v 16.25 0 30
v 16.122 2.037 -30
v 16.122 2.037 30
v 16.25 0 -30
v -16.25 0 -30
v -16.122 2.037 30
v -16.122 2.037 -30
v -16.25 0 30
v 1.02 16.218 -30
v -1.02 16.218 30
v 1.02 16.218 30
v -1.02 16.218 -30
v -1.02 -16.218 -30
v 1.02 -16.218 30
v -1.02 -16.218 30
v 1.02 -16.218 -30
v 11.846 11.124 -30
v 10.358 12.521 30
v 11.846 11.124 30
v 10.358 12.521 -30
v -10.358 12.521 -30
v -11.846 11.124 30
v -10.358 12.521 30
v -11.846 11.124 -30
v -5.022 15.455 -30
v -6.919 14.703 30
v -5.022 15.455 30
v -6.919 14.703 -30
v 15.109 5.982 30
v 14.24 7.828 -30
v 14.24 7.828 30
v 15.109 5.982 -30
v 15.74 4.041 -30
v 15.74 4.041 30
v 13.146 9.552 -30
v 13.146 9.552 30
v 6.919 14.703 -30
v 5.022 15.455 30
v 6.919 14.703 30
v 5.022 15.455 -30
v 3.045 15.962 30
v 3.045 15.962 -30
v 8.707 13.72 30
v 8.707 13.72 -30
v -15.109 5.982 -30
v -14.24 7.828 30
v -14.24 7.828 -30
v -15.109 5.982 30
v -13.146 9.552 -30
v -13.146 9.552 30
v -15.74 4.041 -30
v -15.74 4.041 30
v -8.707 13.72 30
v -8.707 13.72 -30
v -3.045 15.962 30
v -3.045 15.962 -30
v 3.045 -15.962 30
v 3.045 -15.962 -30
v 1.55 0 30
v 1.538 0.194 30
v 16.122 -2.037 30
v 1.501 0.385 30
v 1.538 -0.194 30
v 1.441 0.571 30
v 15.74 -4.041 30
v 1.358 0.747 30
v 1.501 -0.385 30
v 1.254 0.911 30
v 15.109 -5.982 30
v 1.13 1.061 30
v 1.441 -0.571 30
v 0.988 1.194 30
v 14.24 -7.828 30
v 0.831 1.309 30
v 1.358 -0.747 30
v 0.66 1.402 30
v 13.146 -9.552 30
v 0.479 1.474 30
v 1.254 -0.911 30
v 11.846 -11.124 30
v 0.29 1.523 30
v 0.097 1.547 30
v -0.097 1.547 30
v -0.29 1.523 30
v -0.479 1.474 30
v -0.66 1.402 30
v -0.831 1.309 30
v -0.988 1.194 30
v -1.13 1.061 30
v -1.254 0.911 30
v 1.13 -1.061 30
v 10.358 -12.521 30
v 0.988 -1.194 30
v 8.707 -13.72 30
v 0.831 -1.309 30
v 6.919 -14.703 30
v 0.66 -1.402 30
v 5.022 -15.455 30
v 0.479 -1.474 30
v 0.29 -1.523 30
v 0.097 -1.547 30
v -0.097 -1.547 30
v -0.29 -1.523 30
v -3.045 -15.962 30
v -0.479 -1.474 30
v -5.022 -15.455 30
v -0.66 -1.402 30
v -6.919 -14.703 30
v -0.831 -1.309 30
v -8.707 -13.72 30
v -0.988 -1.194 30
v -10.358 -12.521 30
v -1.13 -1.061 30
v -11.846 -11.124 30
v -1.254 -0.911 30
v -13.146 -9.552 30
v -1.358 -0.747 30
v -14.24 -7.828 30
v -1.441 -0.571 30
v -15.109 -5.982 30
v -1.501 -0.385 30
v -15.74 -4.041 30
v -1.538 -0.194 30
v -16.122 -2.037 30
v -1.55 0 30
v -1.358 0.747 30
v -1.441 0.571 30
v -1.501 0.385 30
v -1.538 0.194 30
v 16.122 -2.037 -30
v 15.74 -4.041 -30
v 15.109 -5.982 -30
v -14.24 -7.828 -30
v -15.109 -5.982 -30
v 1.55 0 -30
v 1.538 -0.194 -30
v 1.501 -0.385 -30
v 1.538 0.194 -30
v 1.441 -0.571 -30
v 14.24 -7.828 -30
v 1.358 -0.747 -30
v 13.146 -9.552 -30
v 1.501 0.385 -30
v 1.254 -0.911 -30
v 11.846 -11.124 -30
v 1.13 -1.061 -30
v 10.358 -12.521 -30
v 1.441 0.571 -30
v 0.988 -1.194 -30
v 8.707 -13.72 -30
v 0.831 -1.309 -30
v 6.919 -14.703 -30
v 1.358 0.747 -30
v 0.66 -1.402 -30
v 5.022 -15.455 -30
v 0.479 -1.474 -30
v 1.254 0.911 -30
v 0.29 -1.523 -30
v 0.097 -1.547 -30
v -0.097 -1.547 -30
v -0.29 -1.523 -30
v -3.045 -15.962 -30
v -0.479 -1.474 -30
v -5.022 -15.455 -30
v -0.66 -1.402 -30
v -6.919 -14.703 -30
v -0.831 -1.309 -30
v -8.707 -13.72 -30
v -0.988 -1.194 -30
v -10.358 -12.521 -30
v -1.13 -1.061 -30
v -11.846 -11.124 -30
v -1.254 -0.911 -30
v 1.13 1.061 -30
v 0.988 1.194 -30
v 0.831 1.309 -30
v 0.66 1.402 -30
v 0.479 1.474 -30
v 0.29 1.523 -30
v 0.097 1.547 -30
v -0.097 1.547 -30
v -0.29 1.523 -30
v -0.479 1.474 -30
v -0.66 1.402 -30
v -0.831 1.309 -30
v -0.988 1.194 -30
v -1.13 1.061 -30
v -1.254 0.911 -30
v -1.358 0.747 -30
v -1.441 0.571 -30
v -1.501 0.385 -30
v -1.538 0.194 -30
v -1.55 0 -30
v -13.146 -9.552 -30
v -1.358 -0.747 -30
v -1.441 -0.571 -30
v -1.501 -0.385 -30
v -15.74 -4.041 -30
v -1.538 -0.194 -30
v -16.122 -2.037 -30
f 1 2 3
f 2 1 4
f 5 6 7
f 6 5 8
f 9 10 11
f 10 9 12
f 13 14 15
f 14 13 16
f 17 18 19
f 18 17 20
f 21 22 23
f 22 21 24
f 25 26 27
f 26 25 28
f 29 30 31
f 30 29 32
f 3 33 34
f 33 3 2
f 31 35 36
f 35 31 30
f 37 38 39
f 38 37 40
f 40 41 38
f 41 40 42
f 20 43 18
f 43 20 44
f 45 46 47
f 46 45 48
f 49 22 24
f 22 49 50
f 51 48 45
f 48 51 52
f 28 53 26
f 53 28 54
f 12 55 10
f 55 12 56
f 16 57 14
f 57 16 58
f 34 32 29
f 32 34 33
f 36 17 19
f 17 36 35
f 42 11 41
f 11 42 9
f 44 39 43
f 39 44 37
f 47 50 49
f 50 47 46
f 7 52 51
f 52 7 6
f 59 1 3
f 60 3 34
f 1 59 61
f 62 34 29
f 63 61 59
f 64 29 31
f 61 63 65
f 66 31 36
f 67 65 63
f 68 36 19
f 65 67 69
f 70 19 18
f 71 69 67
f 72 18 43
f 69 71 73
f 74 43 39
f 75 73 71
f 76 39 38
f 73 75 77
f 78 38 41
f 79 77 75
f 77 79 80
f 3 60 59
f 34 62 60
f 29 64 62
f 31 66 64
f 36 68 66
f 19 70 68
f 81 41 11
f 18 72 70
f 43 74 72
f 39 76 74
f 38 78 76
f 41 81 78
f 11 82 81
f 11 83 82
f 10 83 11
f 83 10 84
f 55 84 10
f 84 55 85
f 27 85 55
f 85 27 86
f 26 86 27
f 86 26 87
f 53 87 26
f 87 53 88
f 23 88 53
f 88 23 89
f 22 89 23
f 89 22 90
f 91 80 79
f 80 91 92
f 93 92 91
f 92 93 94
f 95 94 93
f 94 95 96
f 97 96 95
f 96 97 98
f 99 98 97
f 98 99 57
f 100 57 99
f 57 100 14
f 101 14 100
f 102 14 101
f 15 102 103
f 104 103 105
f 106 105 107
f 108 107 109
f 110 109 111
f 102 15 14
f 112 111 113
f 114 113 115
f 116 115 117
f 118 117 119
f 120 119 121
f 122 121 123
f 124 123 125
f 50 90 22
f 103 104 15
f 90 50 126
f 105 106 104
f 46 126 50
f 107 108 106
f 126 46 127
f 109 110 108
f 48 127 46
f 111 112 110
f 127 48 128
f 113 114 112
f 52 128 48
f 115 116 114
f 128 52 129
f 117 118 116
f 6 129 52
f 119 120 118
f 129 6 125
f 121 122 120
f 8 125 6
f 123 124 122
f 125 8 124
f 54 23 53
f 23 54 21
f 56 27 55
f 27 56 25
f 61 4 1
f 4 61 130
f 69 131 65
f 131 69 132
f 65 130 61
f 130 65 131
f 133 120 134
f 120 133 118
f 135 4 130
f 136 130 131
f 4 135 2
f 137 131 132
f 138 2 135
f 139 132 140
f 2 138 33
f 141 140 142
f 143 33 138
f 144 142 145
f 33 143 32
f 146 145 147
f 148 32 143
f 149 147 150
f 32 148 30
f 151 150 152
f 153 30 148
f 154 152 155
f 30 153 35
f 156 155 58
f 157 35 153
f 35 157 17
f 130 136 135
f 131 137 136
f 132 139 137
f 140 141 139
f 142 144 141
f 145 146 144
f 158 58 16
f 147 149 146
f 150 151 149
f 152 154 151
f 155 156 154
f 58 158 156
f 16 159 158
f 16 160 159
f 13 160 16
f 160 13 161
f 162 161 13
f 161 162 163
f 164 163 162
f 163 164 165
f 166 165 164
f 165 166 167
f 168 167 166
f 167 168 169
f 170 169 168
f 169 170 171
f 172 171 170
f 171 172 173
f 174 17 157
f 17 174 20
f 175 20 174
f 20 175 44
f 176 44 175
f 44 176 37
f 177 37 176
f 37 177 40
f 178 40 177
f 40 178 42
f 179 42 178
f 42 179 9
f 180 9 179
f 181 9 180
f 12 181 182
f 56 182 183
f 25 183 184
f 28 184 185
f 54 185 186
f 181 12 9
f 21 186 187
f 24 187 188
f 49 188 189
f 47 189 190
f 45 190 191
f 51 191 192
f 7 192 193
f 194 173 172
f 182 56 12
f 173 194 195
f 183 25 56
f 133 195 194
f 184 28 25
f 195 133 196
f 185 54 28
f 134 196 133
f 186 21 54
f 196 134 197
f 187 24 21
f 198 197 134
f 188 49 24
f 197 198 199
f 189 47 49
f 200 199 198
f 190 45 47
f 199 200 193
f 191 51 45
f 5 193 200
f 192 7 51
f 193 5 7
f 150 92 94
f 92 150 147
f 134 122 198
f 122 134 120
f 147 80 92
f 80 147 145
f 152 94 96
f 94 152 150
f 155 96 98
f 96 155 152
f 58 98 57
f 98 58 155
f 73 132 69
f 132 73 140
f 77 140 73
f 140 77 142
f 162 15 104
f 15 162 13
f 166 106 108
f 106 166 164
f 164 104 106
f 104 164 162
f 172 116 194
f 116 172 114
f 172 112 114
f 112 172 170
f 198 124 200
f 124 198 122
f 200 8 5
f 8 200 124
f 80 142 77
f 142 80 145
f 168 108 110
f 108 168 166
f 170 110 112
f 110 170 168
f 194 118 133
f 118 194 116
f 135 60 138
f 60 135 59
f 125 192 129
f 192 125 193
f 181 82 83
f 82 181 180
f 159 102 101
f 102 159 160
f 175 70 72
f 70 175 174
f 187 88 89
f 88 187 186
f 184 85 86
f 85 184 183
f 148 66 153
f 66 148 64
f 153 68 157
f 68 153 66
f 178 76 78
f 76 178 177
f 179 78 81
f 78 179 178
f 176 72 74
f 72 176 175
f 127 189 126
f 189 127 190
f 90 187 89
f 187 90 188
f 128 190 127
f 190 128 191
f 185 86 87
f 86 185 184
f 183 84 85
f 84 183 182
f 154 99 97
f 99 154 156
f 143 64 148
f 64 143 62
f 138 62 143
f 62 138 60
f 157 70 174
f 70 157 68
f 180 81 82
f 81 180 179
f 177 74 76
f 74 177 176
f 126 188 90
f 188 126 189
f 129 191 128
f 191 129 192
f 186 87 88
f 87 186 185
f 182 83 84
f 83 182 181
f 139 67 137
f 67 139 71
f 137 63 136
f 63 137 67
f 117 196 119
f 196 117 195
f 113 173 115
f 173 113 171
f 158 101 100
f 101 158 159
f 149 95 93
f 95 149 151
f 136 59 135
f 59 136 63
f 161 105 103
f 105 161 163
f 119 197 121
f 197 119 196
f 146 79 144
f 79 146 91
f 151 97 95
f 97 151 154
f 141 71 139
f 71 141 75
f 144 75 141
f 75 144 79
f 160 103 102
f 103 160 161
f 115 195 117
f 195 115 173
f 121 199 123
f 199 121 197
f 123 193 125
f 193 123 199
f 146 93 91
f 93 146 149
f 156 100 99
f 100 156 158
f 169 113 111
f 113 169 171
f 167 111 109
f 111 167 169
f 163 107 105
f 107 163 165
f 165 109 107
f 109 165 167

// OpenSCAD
$fn = 50;


difference() {
	union() {
		translate(v = [0, 0, -30.0000000000]) {
			cylinder(h = 60, r = 16.2500000000);
		}
	}
	union() {
		translate(v = [0, 0, -100.0000000000]) {
			cylinder(h = 200, r = 1.5500000000);
		}
	}
}
